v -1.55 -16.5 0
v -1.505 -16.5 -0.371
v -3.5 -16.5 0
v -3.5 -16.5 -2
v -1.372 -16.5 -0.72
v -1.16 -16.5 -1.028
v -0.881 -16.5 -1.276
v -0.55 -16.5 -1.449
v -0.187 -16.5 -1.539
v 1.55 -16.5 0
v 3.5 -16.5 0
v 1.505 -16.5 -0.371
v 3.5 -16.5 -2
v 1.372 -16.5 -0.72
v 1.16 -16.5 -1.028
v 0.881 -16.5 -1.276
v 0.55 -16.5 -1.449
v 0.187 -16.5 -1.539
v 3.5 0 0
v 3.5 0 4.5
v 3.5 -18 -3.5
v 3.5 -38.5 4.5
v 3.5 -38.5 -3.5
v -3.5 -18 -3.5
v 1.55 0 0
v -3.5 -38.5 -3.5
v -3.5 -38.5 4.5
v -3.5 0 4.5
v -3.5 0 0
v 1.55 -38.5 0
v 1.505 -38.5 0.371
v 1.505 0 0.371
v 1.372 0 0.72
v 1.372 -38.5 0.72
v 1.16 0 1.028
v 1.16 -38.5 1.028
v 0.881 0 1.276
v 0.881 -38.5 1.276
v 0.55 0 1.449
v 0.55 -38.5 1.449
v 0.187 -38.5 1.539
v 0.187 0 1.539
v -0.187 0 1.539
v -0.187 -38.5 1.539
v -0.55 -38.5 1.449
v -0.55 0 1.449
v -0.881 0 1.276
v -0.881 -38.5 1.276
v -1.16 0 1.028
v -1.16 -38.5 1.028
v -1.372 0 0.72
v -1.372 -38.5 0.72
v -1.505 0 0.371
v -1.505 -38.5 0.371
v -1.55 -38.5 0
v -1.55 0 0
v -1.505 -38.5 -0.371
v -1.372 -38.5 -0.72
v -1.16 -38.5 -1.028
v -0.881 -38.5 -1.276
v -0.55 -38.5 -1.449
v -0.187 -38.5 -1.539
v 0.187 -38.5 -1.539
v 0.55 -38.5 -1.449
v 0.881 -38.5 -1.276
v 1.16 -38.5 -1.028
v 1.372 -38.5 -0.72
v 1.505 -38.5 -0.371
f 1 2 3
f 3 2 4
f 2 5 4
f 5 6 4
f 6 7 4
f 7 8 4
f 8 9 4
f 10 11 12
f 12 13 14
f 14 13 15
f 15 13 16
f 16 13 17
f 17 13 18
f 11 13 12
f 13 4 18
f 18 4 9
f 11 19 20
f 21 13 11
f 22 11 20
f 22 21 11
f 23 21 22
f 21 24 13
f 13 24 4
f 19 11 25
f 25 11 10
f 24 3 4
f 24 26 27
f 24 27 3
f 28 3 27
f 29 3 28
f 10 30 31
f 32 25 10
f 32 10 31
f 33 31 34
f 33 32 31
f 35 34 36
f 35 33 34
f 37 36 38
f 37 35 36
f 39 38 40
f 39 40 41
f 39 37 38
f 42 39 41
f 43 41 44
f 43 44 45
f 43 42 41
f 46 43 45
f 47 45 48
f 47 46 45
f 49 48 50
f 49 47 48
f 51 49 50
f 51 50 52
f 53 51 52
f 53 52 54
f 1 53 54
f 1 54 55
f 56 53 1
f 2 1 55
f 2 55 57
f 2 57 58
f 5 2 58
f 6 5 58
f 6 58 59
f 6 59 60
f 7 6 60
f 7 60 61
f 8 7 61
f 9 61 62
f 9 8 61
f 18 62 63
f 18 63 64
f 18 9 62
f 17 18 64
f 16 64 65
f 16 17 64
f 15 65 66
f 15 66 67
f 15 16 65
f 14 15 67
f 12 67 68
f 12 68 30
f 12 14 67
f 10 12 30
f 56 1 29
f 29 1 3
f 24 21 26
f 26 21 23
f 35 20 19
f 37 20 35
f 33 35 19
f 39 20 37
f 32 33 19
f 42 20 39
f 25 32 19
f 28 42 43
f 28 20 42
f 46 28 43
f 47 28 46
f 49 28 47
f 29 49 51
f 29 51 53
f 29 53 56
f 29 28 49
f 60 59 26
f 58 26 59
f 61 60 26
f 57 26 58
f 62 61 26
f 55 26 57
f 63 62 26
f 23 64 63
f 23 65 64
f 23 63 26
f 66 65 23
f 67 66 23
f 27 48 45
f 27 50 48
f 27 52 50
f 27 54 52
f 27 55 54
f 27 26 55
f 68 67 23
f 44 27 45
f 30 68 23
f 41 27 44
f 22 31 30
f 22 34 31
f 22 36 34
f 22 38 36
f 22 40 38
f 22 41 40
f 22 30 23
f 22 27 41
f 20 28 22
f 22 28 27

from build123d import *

# Parameters (mm, degrees)
SKETCH_W       = 7
SKETCH_H       = 7
SKETCH_R       = 1.55
PAD_DEPTH      = 38.5
SKETCH001_W    = 3.5
SKETCH001_H    = 16.5
POCKET_DEPTH   = 7.001
POCKET_FACE7_W = 38.5
POCKET_FACE7_H = 7
PAD001_DEPTH   = 1
CHAMFER_SIZE   = 1.5


with BuildPart() as part:
    # Sketch → Pad (new body)
    with BuildSketch(Plane.XZ):
        Rectangle(SKETCH_W, SKETCH_H)
        Circle(SKETCH_R, mode=Mode.SUBTRACT)
    extrude(amount=PAD_DEPTH)

    # Sketch001 (on Face3 of Pad) → Pocket (cut, through all)
    with BuildSketch(Plane(origin=(3.5, 0, 0), x_dir=(0, 0, 1), z_dir=(1, 0, 0))):
        with Locations((-1.75, 8.25)):
            Rectangle(SKETCH001_W, SKETCH001_H)
    extrude(amount=-POCKET_DEPTH, mode=Mode.SUBTRACT)

    # Pocket Face7 → Pad001 (add)
    with BuildSketch(Plane(origin=(0, -19.25, 3.5), x_dir=(0, 1, 0), z_dir=(0, 0, 1))):
        Rectangle(POCKET_FACE7_W, POCKET_FACE7_H)
    extrude(amount=PAD001_DEPTH)

    # Chamfer
    chamfer_edges = [part.edges().sort_by_distance(p)[0] for p in [
        (0, -16.5, -3.5),
    ]]
    chamfer(chamfer_edges, length=CHAMFER_SIZE)


solid = part.part
